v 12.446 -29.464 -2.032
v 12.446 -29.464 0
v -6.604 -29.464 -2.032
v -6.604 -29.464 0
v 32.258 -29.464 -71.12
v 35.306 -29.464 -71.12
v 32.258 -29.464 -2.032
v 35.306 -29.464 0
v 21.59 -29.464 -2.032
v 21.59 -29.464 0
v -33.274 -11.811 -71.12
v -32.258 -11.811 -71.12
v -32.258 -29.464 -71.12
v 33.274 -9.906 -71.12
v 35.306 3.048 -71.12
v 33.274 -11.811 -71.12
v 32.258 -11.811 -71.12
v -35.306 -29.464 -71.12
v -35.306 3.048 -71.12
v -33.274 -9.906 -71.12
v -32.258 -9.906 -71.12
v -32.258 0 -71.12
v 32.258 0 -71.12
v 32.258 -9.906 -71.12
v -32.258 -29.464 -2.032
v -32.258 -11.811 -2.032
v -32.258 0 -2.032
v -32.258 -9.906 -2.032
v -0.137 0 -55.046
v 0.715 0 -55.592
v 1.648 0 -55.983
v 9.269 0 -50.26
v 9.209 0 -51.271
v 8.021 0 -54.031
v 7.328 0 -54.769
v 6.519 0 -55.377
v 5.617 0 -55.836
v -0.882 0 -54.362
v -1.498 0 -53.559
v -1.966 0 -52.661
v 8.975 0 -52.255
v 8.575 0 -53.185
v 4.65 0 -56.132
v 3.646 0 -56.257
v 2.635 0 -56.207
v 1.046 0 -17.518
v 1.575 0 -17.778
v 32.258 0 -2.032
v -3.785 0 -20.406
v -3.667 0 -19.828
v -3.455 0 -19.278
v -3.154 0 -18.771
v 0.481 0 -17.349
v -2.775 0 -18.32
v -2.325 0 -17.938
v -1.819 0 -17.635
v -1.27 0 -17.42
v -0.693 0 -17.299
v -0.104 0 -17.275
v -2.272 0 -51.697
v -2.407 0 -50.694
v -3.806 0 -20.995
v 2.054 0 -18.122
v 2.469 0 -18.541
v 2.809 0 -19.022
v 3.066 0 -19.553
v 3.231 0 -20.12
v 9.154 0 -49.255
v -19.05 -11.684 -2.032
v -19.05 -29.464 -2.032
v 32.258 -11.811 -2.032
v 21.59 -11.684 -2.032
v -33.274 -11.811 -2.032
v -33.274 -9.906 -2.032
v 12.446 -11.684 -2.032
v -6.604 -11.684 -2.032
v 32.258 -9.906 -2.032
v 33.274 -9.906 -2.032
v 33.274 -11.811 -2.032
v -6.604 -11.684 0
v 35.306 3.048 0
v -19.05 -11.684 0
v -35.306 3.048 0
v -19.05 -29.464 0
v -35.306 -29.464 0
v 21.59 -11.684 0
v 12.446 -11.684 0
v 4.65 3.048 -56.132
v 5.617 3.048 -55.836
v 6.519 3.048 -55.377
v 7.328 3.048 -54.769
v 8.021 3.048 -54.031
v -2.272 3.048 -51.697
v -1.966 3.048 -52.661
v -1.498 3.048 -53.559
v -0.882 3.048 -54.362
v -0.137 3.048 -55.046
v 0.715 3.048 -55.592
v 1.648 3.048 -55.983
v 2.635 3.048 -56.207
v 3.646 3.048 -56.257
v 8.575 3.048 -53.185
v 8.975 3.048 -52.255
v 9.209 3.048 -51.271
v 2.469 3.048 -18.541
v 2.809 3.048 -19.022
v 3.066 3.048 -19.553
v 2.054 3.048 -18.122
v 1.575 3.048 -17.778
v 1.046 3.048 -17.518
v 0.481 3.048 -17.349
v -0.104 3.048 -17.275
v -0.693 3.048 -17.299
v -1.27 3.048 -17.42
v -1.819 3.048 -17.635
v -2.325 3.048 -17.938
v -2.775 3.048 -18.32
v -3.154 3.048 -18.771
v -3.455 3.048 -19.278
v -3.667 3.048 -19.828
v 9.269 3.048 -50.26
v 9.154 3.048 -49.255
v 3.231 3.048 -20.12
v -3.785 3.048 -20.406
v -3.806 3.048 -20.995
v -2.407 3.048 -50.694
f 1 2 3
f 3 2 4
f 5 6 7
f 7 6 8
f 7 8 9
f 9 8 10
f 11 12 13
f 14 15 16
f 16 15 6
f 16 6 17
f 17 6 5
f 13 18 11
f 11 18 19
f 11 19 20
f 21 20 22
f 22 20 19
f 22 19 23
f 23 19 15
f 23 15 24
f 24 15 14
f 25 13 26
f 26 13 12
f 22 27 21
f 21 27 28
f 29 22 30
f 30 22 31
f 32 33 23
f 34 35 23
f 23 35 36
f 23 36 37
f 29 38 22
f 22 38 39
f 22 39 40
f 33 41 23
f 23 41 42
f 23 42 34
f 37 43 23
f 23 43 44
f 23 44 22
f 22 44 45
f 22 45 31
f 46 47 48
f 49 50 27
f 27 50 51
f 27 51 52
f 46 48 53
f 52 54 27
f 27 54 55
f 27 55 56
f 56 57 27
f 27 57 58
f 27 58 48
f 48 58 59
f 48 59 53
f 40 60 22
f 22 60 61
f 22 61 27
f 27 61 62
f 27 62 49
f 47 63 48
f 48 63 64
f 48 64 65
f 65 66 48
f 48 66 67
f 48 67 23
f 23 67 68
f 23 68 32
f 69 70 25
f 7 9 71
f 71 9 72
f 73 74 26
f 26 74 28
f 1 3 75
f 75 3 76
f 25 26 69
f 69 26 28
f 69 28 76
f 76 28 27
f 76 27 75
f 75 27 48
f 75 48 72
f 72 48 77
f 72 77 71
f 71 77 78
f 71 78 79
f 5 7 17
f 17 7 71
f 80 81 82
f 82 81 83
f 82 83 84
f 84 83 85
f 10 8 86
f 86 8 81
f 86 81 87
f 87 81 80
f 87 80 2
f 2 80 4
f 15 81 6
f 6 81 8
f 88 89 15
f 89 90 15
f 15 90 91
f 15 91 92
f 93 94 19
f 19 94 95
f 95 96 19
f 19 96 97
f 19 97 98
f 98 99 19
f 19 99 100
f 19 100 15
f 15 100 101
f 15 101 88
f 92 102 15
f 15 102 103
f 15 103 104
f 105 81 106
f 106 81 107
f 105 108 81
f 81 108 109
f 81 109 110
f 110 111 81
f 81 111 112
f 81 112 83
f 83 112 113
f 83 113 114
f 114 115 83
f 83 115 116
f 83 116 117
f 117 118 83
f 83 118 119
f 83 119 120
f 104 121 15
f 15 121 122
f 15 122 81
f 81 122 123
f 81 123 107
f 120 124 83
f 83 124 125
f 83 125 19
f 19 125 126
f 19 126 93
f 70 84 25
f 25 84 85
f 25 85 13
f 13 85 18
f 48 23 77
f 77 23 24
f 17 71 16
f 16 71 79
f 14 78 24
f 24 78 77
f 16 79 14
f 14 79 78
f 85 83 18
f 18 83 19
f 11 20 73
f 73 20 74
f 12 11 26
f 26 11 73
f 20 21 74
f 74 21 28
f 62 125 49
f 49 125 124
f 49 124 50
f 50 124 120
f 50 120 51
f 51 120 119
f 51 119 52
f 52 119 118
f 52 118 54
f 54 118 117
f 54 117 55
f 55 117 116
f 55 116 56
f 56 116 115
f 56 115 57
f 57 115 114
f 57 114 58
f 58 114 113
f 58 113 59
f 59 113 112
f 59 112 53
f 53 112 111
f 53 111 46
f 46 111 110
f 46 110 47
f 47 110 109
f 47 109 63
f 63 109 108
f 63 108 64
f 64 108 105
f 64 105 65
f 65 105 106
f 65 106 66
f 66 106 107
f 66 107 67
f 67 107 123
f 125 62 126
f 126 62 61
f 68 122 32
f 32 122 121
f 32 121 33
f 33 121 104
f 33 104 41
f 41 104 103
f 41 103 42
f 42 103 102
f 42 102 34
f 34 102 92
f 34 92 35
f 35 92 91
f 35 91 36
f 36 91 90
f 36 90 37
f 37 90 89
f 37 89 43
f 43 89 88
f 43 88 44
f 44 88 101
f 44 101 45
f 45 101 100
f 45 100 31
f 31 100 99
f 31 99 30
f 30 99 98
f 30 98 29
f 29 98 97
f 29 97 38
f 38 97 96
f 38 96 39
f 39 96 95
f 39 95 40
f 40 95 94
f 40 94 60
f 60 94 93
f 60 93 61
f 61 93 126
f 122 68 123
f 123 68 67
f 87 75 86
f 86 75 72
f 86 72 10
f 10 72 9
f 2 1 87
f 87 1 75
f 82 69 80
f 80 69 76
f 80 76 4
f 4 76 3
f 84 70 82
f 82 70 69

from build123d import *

# Parameters (mm, degrees)
SKETCH2_W           = 35.306
SKETCH2_H           = 71.12
BOSS_EXTRUDE1_DEPTH = 3.048
SKETCH6_W           = 35.306
SKETCH6_H           = 2.032
BOSS_EXTRUDE3_DEPTH = 29.464
SKETCH3_W           = 3.048
SKETCH3_H           = 69.088
BOSS_EXTRUDE2_DEPTH = 29.464
SKETCH4_W           = 1.016
SKETCH4_H           = 1.905
CUT_EXTRUDE1_DEPTH  = 69.088
CUT_EXTRUDE2_DEPTH  = 86.799756293
SKETCH8_W           = 12.446
SKETCH8_H           = 17.78
SKETCH8_W_2         = 9.144
CUT_EXTRUDE3_DEPTH  = 85.691766613


with BuildPart() as part:
    # Sketch2 → Boss-Extrude1 (new body)
    with BuildSketch(Plane(origin=(0, 0, 0), x_dir=(1, 0, 0), z_dir=(0, 1, 0))):
        with Locations((17.653, 35.56)):
            Rectangle(SKETCH2_W, SKETCH2_H)
    boss_extrude1 = extrude(amount=BOSS_EXTRUDE1_DEPTH)

    # Sketch6 → Boss-Extrude3 (add)
    with BuildSketch(Plane.XZ):
        with Locations((17.653, -1.016)):
            Rectangle(SKETCH6_W, SKETCH6_H)
    boss_extrude3 = extrude(amount=BOSS_EXTRUDE3_DEPTH)

    # Sketch3 → Boss-Extrude2 (add)
    with BuildSketch(Plane.XZ):
        with Locations((33.782, -36.576)):
            Rectangle(SKETCH3_W, SKETCH3_H)
    boss_extrude2 = extrude(amount=BOSS_EXTRUDE2_DEPTH)

    # Sketch4 → Cut-Extrude1 (cut)
    with BuildSketch(Plane(origin=(0, 0, -71.12), x_dir=(-1, 0, 0), z_dir=(0, 0, -1))):
        with Locations((-32.766, -10.8585)):
            Rectangle(SKETCH4_W, SKETCH4_H)
    cut_extrude1 = extrude(amount=-CUT_EXTRUDE1_DEPTH, mode=Mode.SUBTRACT)

    # Mirror1: Boss-Extrude1, Boss-Extrude3, Boss-Extrude2, Cut-Extrude1 across plane
    add(boss_extrude1.mirror(Plane(origin=(0, 3.048, 0), x_dir=(0, 0, 1), z_dir=(-1, 0, 0))))
    add(boss_extrude3.mirror(Plane(origin=(0, 3.048, 0), x_dir=(0, 0, 1), z_dir=(-1, 0, 0))))
    add(boss_extrude2.mirror(Plane(origin=(0, 3.048, 0), x_dir=(0, 0, 1), z_dir=(-1, 0, 0))))
    add(cut_extrude1.mirror(Plane(origin=(0, 3.048, 0), x_dir=(0, 0, 1), z_dir=(-1, 0, 0))), mode=Mode.SUBTRACT)

    # Sketch7 → Cut-Extrude2 (cut, through all)
    with BuildSketch(Plane(origin=(0, 3.048, 0), x_dir=(1, 0, 0), z_dir=(0, 1, 0))):
        with BuildLine():
            Line((3.230717937, 20.119567295), (9.153893754, 49.255146271))
            ThreePointArc((9.153893754, 49.255146271), (4.150548543, 56.216269331), (-2.406524046, 50.693996555))
            Line((-2.406524046, 50.693996555), (-3.806058115, 20.995389207))
            ThreePointArc((-3.806058115, 20.995389207), (-0.693203461, 17.299227364), (3.230717937, 20.119567295))
        make_face()
    extrude(amount=-CUT_EXTRUDE2_DEPTH, mode=Mode.SUBTRACT)

    # Sketch8 → Cut-Extrude3 (cut, through all)
    with BuildSketch(Plane.XY):
        with Locations((-12.827, -20.574)):
            Rectangle(SKETCH8_W, SKETCH8_H)
        with Locations((17.018, -20.574)):
            Rectangle(SKETCH8_W_2, SKETCH8_H)
    extrude(amount=-CUT_EXTRUDE3_DEPTH, mode=Mode.SUBTRACT)


solid = part.part
